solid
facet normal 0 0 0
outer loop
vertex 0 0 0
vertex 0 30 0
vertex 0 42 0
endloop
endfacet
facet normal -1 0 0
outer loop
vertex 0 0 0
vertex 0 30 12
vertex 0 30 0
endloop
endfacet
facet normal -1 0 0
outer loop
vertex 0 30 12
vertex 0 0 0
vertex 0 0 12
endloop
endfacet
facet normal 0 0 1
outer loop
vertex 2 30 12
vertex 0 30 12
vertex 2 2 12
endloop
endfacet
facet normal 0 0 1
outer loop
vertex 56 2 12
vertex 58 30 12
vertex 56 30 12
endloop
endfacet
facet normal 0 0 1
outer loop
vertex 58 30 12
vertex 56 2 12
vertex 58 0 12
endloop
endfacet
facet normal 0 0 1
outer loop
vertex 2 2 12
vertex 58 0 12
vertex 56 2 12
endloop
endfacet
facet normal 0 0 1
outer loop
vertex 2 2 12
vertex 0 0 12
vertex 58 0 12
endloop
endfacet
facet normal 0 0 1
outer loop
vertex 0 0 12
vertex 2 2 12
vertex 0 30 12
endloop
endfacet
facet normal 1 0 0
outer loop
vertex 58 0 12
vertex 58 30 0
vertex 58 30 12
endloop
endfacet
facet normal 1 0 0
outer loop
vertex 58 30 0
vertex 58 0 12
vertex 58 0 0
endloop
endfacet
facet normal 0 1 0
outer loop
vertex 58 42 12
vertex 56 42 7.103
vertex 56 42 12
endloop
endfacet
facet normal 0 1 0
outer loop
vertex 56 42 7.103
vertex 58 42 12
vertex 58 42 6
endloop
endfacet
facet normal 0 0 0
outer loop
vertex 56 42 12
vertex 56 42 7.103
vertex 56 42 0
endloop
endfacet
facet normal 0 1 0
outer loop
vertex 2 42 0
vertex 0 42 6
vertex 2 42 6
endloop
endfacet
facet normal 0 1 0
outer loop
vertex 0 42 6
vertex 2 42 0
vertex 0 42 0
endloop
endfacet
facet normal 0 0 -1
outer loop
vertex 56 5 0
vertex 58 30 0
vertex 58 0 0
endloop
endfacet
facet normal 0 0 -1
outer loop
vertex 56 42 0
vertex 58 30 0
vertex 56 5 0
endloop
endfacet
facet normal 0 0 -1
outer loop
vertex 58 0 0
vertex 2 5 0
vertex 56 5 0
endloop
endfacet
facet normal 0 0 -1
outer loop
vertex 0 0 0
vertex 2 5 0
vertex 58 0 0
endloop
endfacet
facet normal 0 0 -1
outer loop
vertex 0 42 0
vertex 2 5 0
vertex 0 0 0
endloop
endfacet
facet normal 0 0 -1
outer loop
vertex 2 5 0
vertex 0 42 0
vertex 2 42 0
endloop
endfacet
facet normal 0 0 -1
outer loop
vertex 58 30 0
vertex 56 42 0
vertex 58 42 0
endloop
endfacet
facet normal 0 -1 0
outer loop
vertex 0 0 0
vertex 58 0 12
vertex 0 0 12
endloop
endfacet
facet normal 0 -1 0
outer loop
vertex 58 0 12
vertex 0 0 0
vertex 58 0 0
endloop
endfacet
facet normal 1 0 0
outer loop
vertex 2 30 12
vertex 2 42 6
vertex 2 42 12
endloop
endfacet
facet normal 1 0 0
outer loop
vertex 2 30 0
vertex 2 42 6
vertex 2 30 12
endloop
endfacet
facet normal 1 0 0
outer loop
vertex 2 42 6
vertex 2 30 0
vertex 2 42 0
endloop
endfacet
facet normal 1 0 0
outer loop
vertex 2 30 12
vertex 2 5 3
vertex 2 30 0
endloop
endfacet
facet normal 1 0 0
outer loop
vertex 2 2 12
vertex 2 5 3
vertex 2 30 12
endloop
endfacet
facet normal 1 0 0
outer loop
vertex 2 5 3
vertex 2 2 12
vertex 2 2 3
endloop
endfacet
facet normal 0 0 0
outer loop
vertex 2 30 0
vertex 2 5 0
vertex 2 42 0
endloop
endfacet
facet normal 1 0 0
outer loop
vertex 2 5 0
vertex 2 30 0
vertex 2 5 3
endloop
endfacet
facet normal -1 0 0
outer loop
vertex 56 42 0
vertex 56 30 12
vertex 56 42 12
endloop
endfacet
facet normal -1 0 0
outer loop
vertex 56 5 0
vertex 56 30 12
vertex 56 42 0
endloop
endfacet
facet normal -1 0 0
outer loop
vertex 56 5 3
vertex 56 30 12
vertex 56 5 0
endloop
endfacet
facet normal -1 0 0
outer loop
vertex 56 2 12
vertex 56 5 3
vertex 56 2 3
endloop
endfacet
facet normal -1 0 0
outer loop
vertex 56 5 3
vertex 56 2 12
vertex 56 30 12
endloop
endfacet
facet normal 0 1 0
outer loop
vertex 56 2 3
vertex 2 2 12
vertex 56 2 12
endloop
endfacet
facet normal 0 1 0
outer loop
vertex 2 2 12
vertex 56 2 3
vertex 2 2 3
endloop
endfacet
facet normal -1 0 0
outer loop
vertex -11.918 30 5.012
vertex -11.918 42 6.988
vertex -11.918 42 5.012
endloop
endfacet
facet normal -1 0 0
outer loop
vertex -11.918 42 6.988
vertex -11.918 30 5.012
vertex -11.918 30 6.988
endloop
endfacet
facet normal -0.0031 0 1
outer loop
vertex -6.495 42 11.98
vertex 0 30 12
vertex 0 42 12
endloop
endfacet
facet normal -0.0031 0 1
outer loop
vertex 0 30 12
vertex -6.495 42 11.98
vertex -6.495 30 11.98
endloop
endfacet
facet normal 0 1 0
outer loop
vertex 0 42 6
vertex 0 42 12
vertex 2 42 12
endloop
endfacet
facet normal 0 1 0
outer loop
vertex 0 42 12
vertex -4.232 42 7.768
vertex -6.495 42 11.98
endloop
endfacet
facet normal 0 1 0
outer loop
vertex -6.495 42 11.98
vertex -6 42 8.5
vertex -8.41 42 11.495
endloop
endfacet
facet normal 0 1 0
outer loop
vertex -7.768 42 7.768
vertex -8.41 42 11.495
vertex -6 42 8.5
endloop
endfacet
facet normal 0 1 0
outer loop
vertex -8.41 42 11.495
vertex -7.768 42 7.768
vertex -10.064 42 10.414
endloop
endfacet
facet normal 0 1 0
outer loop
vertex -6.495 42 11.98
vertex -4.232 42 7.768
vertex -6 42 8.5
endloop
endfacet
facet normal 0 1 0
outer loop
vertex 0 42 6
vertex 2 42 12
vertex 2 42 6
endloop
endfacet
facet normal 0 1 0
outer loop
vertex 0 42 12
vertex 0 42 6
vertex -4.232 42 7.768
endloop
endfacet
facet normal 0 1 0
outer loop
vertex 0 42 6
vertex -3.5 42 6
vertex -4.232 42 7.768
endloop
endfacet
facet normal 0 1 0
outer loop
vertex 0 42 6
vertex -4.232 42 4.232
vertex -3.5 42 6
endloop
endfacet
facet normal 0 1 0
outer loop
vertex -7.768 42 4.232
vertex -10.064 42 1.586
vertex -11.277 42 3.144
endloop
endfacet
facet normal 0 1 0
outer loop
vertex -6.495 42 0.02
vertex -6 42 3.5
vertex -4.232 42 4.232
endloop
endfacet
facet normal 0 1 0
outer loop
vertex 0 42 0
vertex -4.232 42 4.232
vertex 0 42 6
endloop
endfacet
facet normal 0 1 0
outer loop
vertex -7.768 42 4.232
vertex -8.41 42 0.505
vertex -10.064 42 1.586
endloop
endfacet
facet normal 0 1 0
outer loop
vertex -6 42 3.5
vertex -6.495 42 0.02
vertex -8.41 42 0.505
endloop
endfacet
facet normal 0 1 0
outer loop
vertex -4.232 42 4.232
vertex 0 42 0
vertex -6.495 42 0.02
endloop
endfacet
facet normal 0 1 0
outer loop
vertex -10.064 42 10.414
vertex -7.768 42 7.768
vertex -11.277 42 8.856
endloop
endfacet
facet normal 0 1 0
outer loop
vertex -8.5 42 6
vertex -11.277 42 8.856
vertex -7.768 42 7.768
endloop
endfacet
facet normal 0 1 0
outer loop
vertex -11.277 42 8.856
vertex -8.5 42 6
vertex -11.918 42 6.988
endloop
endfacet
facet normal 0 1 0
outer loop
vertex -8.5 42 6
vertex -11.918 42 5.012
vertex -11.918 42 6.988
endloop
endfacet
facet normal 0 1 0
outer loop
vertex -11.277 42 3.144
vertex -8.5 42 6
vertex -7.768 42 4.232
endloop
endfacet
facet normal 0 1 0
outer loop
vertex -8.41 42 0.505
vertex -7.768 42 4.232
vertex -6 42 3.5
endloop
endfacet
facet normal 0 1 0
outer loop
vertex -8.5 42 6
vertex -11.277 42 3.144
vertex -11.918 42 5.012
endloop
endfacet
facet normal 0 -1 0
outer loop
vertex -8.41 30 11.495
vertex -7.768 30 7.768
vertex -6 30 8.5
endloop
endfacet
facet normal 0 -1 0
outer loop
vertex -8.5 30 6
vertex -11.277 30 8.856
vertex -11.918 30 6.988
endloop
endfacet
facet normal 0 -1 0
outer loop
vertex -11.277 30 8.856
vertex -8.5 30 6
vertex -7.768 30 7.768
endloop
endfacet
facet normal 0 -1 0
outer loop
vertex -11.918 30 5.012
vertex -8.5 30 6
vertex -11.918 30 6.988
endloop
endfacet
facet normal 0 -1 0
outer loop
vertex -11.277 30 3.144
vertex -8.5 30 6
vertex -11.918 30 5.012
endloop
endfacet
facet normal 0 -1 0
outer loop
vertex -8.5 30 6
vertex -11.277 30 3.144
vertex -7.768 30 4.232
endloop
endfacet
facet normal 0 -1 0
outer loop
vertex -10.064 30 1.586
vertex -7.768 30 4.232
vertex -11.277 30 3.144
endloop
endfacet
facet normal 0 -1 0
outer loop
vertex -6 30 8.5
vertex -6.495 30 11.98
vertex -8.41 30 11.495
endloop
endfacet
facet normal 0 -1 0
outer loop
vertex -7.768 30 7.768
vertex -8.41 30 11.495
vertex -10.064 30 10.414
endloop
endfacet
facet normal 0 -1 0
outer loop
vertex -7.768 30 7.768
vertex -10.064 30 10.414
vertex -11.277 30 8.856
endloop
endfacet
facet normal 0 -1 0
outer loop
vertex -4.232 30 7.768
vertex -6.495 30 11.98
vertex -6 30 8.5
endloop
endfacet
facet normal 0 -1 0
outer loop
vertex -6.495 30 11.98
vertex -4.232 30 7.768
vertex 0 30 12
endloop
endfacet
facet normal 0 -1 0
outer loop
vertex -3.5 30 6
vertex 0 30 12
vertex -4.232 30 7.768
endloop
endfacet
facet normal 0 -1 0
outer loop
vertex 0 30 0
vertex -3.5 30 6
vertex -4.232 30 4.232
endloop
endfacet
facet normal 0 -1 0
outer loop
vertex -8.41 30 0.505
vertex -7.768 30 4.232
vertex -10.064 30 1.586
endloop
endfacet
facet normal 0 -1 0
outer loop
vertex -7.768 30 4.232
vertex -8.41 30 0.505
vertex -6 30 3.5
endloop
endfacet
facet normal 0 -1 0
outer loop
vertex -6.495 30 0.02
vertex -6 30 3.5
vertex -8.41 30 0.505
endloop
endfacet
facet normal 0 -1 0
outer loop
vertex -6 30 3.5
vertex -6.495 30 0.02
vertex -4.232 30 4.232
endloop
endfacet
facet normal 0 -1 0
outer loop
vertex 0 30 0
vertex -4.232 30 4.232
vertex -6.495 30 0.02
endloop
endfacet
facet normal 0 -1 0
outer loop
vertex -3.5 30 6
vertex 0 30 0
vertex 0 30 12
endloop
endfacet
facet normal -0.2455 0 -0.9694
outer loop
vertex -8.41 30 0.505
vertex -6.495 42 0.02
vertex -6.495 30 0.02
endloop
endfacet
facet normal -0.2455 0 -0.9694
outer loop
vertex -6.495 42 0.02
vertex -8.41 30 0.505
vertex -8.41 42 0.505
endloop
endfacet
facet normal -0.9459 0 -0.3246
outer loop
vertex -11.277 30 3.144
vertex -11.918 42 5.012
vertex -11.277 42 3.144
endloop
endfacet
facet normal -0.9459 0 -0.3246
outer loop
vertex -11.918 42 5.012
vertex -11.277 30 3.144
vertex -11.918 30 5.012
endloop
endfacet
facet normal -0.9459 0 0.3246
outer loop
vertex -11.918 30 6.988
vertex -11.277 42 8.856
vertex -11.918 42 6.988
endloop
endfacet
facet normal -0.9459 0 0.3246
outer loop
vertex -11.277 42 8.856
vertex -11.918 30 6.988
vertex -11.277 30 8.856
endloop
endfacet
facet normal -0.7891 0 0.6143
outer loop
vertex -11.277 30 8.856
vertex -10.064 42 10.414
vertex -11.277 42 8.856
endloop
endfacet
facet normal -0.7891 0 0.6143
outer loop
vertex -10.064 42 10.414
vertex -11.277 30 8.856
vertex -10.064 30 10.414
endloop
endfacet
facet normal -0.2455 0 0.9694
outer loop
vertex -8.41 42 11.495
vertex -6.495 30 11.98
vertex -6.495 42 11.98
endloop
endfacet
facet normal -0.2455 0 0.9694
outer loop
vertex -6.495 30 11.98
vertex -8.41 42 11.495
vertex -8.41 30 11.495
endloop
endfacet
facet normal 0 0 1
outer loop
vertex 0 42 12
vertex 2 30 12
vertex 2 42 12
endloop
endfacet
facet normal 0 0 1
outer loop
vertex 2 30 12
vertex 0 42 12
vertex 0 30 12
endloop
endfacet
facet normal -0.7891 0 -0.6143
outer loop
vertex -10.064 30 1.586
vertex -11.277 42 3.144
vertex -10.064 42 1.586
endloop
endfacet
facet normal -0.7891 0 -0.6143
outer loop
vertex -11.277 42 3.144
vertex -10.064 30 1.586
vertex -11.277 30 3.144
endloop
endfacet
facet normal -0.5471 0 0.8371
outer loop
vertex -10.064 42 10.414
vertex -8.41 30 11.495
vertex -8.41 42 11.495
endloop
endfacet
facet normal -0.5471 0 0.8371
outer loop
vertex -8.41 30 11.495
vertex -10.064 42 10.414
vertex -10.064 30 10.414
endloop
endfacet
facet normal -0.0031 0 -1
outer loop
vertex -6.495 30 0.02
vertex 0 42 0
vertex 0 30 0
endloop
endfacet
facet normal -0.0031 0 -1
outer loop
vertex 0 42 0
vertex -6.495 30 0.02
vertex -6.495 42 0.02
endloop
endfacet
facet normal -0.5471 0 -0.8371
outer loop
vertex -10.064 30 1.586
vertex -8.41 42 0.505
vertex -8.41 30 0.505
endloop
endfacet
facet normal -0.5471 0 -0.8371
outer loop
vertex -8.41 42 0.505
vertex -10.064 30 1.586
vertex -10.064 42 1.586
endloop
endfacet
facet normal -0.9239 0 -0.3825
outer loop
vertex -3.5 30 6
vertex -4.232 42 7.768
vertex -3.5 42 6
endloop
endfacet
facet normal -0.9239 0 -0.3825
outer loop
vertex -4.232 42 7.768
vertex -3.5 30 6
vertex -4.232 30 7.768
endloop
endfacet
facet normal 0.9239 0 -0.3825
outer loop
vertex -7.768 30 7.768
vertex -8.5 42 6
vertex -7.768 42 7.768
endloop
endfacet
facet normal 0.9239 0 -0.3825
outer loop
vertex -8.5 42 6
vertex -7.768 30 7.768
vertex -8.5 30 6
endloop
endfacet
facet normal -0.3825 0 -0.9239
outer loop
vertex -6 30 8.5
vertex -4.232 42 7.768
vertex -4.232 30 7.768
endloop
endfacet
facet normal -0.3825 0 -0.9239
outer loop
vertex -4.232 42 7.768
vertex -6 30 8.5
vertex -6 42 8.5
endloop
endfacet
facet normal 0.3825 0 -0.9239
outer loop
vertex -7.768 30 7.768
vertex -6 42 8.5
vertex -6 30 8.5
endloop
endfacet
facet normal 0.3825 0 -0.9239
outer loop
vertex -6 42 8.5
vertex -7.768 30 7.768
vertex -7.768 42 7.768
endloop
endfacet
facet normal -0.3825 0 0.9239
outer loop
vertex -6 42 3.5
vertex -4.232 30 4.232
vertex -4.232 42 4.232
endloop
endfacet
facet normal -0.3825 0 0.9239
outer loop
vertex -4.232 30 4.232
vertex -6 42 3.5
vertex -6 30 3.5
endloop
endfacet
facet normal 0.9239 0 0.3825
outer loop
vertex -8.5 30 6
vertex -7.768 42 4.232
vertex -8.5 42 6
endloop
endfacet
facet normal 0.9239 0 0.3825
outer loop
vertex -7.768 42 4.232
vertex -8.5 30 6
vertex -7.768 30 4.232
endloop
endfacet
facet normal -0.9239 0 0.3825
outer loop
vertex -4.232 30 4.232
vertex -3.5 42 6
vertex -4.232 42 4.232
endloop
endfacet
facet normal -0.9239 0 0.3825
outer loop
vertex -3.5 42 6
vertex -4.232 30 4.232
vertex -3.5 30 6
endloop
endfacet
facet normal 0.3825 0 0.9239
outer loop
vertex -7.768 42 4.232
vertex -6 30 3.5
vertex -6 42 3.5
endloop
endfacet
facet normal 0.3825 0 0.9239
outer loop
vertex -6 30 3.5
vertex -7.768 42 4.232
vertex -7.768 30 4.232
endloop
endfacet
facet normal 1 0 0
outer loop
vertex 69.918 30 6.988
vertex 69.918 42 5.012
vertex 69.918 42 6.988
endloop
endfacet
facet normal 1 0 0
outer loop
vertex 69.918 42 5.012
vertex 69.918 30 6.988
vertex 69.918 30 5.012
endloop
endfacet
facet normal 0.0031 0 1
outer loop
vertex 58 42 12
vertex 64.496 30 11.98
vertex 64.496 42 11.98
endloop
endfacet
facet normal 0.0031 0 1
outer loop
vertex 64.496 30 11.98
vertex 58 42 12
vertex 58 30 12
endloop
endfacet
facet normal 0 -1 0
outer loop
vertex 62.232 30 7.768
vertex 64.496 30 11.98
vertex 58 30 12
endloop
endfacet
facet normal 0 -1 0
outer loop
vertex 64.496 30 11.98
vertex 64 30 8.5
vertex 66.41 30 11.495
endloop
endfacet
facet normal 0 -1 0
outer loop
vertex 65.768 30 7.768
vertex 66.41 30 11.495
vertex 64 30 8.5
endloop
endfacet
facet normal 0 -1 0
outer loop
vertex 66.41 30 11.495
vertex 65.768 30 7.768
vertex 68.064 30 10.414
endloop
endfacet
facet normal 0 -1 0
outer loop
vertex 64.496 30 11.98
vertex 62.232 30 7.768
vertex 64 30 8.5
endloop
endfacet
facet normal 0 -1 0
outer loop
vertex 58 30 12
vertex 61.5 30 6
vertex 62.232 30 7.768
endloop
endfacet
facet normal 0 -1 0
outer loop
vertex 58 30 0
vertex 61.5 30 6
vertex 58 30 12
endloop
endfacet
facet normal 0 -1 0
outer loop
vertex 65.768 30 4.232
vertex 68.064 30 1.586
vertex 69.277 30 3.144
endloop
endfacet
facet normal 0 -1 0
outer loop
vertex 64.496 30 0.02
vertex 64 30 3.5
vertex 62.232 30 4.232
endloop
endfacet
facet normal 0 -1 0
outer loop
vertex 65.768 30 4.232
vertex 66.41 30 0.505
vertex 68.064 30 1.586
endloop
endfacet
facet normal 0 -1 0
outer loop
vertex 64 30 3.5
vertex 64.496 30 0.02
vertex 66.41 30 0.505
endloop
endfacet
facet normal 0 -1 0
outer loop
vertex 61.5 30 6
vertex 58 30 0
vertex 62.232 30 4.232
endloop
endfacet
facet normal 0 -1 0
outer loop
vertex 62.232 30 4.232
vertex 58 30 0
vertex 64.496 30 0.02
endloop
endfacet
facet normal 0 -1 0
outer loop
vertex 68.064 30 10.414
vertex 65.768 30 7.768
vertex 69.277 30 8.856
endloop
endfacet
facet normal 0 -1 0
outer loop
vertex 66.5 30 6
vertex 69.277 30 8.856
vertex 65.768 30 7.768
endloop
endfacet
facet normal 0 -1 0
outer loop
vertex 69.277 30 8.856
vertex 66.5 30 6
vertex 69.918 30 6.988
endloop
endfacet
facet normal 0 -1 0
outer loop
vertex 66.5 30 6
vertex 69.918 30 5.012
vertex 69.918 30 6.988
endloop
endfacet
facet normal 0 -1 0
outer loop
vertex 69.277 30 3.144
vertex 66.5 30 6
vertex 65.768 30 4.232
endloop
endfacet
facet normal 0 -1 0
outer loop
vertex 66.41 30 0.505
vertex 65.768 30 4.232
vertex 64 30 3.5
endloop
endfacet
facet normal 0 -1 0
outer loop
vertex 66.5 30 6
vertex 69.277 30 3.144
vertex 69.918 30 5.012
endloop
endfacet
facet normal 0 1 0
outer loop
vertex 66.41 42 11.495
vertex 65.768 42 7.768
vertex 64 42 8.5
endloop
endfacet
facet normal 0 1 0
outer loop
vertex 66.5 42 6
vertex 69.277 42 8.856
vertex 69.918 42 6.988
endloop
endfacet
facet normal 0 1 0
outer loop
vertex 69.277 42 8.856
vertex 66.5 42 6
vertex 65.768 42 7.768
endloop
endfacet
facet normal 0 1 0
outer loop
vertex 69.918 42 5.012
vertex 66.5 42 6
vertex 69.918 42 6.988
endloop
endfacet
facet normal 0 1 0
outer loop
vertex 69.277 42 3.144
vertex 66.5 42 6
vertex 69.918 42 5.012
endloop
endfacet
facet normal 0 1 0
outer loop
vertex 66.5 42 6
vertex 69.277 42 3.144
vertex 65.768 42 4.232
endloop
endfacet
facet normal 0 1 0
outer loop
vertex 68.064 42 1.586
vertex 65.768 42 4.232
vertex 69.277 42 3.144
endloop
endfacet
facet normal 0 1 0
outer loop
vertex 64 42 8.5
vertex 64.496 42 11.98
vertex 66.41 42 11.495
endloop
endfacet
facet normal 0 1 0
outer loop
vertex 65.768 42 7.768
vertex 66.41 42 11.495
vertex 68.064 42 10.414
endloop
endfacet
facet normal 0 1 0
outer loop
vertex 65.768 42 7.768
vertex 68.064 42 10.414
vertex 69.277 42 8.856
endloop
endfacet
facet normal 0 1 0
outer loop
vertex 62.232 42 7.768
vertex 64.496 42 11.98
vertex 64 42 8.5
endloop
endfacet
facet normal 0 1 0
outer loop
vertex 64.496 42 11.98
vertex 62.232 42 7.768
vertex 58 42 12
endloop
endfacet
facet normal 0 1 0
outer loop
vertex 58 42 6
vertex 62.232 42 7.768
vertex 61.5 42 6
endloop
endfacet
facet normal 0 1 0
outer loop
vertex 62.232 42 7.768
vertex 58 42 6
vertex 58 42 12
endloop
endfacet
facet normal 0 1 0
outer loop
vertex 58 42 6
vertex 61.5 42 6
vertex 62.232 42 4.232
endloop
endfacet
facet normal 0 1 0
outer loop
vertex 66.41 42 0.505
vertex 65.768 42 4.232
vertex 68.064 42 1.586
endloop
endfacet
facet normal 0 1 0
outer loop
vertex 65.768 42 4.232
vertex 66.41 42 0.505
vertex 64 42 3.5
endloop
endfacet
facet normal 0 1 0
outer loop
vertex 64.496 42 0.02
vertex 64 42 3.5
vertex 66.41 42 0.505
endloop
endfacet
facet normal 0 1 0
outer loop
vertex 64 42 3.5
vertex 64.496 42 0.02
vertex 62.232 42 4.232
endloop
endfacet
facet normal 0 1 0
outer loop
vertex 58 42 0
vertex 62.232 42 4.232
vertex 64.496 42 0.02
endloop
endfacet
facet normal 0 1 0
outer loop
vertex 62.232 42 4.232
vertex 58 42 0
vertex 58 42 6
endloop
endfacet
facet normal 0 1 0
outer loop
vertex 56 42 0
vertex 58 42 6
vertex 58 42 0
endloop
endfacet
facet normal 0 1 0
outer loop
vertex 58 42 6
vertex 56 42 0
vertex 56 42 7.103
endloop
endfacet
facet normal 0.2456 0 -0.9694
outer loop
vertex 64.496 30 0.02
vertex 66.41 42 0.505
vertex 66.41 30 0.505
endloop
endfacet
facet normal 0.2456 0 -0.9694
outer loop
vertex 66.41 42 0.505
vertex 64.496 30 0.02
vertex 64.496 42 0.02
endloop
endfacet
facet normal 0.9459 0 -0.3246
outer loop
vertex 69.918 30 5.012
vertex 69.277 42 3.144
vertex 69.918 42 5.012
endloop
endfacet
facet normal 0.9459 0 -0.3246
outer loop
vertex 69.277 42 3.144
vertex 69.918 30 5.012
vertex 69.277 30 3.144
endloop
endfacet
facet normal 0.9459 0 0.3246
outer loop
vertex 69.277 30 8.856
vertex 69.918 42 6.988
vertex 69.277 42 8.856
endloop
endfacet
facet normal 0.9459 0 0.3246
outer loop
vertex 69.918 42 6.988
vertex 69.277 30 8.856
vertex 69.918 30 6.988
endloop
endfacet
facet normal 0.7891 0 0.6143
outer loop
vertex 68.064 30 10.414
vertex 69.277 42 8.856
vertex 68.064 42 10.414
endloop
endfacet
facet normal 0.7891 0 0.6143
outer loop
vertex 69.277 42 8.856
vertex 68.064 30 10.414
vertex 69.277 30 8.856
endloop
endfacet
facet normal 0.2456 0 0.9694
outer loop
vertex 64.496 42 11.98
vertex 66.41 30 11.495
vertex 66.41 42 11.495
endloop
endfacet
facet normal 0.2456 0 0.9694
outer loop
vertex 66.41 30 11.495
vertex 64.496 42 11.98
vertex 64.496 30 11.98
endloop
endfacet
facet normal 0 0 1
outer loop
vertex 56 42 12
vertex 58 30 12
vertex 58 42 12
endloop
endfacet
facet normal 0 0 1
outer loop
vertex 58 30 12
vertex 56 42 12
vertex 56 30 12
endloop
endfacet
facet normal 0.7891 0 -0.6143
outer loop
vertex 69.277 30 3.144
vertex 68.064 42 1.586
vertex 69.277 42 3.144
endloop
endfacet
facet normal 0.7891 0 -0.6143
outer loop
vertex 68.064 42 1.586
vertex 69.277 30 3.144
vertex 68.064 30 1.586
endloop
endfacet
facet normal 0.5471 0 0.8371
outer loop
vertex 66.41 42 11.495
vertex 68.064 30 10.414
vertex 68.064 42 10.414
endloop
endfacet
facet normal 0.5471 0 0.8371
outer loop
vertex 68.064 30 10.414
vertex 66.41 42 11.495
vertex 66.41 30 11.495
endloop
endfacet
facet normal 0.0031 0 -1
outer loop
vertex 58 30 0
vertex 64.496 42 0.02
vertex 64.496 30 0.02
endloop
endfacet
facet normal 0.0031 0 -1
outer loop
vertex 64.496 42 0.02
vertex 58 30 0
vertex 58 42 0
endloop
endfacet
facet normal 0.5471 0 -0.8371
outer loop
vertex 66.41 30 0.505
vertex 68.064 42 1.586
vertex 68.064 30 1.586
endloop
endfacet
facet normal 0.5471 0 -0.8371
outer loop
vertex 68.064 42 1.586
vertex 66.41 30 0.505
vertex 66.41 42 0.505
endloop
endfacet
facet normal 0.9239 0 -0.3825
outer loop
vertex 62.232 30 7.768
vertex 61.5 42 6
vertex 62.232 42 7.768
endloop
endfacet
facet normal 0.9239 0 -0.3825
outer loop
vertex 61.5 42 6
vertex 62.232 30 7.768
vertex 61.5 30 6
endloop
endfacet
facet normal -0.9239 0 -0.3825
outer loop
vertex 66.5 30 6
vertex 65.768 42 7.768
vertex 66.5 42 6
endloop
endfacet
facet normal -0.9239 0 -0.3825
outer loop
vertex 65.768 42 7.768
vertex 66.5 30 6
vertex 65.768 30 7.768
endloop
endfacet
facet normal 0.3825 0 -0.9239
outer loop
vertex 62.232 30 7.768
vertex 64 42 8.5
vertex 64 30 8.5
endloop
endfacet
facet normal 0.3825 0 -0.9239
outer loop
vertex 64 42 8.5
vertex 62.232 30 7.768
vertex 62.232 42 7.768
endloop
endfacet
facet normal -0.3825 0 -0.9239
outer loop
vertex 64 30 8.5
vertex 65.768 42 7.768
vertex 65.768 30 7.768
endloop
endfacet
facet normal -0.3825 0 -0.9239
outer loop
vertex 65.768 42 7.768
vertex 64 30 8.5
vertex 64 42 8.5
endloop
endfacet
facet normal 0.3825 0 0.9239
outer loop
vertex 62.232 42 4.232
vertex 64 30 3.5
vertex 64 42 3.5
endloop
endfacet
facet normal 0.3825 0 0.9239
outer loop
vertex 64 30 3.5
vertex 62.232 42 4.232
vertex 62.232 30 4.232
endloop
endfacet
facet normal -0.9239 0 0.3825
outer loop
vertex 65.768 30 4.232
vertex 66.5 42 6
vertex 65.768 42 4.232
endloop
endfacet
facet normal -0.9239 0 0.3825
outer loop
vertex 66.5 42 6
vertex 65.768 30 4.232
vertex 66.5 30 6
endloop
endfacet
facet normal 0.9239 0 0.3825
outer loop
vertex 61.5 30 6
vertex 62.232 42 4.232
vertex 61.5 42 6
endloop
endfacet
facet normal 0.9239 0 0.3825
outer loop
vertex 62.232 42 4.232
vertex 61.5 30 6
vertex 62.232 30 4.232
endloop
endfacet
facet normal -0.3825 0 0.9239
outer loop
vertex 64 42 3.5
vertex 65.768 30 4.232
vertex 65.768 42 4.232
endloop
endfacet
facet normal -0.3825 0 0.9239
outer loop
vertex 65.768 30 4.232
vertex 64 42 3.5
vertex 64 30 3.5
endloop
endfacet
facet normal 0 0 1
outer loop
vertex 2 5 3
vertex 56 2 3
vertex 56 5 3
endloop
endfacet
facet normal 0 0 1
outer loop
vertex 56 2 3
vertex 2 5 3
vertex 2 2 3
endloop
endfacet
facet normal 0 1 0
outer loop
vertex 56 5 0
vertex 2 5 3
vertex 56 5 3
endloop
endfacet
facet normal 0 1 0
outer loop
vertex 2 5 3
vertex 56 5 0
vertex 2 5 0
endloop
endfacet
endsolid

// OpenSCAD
w=54; // width
h=40; // height
d1=3; // depth of the border
d2=12; // depth of whole strap
t=2; // thickness of the strap
t2=t*2; // double thickness

strap();

module strap() {
    difference() {
        strapOutside();
        strapInside();
    }
    border();
    screwHolders();
}

module strapOutside() {
    cube([w+t2,h+t,d2]);
}

module strapInside() {
    translate([t,t,0])
        cube([w,h,d2]);
}

module border() {
    cube([w+t2,d1+t,d1]);
}

sd=d2;
module screwHolders() {
    translate([0,h+t,0])
        screwHolder();
    translate([w+t2,h+t-sd,0])
        rotate([0,0,180])
            screwHolder();
}

module screwHolder() {
    translate([-sd/2,0,sd/2])
    rotate([90,0,0])
    difference() {
        hull() {
            cylinder(h=d2,d=sd);
            translate([sd/2,-sd/2,0]) cube([t,sd,d2]);
        }
        cylinder(h=d2,d=5);
    }
}
